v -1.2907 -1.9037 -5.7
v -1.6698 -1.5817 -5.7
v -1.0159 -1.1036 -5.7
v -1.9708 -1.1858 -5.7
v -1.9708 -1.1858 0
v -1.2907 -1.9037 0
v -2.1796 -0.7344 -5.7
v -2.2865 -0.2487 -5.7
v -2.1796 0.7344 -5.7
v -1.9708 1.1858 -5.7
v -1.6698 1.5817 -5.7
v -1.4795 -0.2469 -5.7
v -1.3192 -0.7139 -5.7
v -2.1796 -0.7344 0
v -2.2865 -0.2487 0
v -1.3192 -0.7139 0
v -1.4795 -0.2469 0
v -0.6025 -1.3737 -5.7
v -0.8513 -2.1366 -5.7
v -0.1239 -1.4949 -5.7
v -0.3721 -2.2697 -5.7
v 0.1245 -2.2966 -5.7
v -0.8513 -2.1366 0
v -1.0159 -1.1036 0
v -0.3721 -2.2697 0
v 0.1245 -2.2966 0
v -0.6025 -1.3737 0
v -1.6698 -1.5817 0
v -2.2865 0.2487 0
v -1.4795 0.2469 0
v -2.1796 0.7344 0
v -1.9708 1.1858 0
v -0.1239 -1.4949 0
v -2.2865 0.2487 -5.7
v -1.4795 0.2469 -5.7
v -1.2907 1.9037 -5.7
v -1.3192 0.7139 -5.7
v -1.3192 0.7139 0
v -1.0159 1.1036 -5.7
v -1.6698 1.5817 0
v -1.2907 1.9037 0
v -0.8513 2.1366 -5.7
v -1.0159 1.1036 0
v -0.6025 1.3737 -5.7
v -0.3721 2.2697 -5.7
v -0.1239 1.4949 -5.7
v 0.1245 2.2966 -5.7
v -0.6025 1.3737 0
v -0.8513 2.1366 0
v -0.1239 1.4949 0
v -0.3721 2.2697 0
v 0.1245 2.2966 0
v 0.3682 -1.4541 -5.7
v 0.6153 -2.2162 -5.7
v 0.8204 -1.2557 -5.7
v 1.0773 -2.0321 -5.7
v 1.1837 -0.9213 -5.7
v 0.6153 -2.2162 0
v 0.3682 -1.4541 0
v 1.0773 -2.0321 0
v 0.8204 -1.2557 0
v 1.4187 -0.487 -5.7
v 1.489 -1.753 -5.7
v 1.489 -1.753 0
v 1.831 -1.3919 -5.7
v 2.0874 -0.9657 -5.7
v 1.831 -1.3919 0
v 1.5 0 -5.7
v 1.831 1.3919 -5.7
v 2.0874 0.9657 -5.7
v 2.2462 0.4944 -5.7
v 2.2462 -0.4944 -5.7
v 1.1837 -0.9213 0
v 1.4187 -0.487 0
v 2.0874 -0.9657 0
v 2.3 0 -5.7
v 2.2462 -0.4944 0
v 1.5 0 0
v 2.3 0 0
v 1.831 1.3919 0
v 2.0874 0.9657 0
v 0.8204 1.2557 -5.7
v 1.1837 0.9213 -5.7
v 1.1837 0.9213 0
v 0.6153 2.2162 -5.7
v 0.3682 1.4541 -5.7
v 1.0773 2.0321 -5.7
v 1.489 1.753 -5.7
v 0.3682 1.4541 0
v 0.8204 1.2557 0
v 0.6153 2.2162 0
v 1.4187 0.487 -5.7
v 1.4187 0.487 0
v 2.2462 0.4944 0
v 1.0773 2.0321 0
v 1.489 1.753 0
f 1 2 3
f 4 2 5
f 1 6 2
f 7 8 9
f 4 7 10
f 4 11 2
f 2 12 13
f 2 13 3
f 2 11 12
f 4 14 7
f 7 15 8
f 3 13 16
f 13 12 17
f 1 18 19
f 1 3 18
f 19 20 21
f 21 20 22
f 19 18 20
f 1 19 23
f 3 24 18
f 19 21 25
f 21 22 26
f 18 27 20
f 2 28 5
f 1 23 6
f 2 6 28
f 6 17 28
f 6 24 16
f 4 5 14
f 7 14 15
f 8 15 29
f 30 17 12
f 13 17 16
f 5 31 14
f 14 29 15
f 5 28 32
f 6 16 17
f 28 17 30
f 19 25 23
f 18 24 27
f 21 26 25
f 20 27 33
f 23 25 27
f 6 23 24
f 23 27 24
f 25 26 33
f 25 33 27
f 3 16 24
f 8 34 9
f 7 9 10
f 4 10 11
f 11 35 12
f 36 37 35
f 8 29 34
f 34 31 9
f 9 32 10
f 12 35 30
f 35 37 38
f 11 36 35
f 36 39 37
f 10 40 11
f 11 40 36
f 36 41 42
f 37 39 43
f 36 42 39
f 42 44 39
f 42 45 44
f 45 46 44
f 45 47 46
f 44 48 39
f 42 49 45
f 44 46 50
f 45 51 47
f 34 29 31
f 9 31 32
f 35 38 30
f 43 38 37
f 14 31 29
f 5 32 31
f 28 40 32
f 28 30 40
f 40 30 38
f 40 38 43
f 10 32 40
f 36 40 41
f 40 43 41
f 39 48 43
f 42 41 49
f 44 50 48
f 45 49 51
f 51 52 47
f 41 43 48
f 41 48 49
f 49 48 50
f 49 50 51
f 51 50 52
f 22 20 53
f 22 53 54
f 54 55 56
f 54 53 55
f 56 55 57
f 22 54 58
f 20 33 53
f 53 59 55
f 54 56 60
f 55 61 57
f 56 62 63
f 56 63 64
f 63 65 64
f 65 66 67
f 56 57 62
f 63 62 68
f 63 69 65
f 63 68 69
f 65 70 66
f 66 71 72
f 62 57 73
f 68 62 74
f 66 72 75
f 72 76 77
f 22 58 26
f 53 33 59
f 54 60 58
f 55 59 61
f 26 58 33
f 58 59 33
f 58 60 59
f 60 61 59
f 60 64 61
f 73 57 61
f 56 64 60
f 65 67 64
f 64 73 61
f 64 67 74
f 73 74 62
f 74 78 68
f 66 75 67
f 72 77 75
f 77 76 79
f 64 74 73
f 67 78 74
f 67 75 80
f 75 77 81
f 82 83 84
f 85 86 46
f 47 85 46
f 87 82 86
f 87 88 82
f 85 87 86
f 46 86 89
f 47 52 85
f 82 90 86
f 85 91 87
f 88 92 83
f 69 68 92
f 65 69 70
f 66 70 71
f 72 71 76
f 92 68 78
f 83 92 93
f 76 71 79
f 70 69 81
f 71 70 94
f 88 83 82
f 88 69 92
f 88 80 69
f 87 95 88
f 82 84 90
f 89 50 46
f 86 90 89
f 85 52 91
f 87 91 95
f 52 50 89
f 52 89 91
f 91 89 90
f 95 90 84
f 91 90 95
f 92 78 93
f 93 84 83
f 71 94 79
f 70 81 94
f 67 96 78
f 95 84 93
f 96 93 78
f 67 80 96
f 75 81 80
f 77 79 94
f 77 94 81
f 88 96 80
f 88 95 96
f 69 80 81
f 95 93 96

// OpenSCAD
// file: ../lib/lib.scad
// Shared helpers. Include AFTER params.scad (needs TOL, M3_* etc.).
$fa = 4; $fs = 0.5;

module rrect(size, r) {            // 2D rounded rectangle, centred
    r2 = min(r, min(size[0], size[1]) / 2 - 0.001);
    offset(r = r2) square([size[0] - 2 * r2, size[1] - 2 * r2], center = true);
}
module rbox(size, r, center_xy = true) {   // box with rounded vertical edges
    translate(center_xy ? [0, 0, 0] : [size[0] / 2, size[1] / 2, 0])
        linear_extrude(size[2]) rrect([size[0], size[1]], r);
}
module rbox_at(x0, x1, y0, y1, z0, z1, r = 0.01) {
    translate([(x0 + x1) / 2, (y0 + y1) / 2, z0]) rbox([x1 - x0, y1 - y0, z1 - z0], r);
}
module box_at(x0, x1, y0, y1, z0, z1) { translate([x0, y0, z0]) cube([x1 - x0, y1 - y0, z1 - z0]); }

module ring(ro, ri, h) { difference() { cylinder(r = ro, h = h); translate([0, 0, -1]) cylinder(r = ri, h = h + 2); } }
module ring_sector(ro, ri, h, a0, a1) {
    intersection() {
        ring(ro, ri, h);
        linear_extrude(h) polygon(concat([[0, 0]], [for (a = [a0 : (a1 - a0) / 24 : a1]) 2 * ro * [cos(a), sin(a)]]));
    }
}
// teardrop hole along an axis lying horizontal (axis = Y after rotation), printable w/o support
module teardrop2d(d) { union() { circle(d = d); rotate(45) square(d / 2); } }
// vertical heat-set insert hole, opening at z=0 going +z (depth l)
module insert_hole(l = M3_INSERT_L) { translate([0, 0, -EPS]) cylinder(d = M3_INSERT_D, h = l + EPS); }
module m3_clear(l) { translate([0, 0, -EPS]) cylinder(d = M3_CLEAR, h = l + 2 * EPS); }
module m3_csk(l) {  // countersunk clearance from z=0 upward, head at z=0 side
    translate([0, 0, -EPS]) { cylinder(d = M3_CLEAR, h = l + 2 * EPS); cylinder(d1 = 6.4, d2 = M3_CLEAR, h = 1.7); }
}
module card2d() { rrect([CARD_L, CARD_W], CARD_R); }
module card_at(cy, z) { translate([0, cy, z]) linear_extrude(CARD_T) card2d(); }

// ---- gears ----
function _inv(a) = tan(a) - a * PI_ / 180;           // involute function, a in deg
function _invpt(rb, r, ang0, s) = let(al = acos(rb / r), th = ang0 - s * (_inv(al) * 180 / PI_)) [r * cos(th), r * sin(th)];
module involute_gear2d(m, z, pa = 20, clearance = 0.05) {
    rp = m * z / 2; rb = rp * cos(pa); ra = rp + m - clearance; rf = rp - 1.25 * m;
    half = 90 / z + _inv(pa) * 180 / PI_;            // tooth half-angle at base (deg)
    n = 8;
    rs = [for (i = [0 : n]) max(rb, rf) + (ra - max(rb, rf)) * i / n];
    union() {
        circle(r = rf, $fn = z * 4);
        for (k = [0 : z - 1]) rotate(k * 360 / z) polygon(concat(
            [[rf * cos(-half), rf * sin(-half)]],
            [for (r = rs) let(p = _invpt(rb, r, half, 1)) [p[0], -p[1]]],
            [for (i = [n : -1 : 0]) _invpt(rb, rs[i], half, 1)],
            [[rf * cos(half), rf * sin(half)]]));
    }
}
// straight gear rack (2D in XY: teeth along +x, pointing -y, pitch line at y=0)
module gear_rack2d(m, len, back = 3) {
    p = PI_ * m; ad = m; de = 1.25 * m; t = tan(20);
    n = ceil(len / p) + 1;
    intersection() {
        union() {
            translate([0, de]) square([len, back]);
            for (i = [0 : n]) translate([i * p - p / 4, 0]) polygon([
                [-(p / 4 + de * t), de + 0.01], [p / 4 + de * t + 0.01, de + 0.01],
                [p / 4 - ad * t, -ad], [-(p / 4 - ad * t), -ad] ]);
        }
        translate([0, -ad - 1]) square([len, ad + de + back + 2]);
    }
}
// GT2 belt-tooth profile ring (teeth outward), 2D
module gt2_ring2d(n, r_land, ri) {
    union() {
        difference() { circle(r = r_land + 0.01, $fn = n * 2); circle(r = ri, $fn = n * 2); }
        for (k = [0 : n - 1]) rotate(k * 360 / n)
            translate([r_land, 0]) hull() { translate([-0.2, 0]) square([0.2, 1.0], center = true); translate([0.25, 0]) circle(r = 0.5, $fn = 12); }
    }
}
// main file
// Vendor model: M3 x 5.7 brass heat-set insert, OD 4.6 (representative). Local: top flush z=0, body toward -Z.
include <../params.scad>
include <../lib/lib.scad>
module vendor_m3_insert() color([0.85,0.65,0.25]) difference() { translate([0, 0, -5.7]) cylinder(d = 4.6, h = 5.7); translate([0, 0, -6]) cylinder(d = 3, h = 7); }

vendor_m3_insert();
